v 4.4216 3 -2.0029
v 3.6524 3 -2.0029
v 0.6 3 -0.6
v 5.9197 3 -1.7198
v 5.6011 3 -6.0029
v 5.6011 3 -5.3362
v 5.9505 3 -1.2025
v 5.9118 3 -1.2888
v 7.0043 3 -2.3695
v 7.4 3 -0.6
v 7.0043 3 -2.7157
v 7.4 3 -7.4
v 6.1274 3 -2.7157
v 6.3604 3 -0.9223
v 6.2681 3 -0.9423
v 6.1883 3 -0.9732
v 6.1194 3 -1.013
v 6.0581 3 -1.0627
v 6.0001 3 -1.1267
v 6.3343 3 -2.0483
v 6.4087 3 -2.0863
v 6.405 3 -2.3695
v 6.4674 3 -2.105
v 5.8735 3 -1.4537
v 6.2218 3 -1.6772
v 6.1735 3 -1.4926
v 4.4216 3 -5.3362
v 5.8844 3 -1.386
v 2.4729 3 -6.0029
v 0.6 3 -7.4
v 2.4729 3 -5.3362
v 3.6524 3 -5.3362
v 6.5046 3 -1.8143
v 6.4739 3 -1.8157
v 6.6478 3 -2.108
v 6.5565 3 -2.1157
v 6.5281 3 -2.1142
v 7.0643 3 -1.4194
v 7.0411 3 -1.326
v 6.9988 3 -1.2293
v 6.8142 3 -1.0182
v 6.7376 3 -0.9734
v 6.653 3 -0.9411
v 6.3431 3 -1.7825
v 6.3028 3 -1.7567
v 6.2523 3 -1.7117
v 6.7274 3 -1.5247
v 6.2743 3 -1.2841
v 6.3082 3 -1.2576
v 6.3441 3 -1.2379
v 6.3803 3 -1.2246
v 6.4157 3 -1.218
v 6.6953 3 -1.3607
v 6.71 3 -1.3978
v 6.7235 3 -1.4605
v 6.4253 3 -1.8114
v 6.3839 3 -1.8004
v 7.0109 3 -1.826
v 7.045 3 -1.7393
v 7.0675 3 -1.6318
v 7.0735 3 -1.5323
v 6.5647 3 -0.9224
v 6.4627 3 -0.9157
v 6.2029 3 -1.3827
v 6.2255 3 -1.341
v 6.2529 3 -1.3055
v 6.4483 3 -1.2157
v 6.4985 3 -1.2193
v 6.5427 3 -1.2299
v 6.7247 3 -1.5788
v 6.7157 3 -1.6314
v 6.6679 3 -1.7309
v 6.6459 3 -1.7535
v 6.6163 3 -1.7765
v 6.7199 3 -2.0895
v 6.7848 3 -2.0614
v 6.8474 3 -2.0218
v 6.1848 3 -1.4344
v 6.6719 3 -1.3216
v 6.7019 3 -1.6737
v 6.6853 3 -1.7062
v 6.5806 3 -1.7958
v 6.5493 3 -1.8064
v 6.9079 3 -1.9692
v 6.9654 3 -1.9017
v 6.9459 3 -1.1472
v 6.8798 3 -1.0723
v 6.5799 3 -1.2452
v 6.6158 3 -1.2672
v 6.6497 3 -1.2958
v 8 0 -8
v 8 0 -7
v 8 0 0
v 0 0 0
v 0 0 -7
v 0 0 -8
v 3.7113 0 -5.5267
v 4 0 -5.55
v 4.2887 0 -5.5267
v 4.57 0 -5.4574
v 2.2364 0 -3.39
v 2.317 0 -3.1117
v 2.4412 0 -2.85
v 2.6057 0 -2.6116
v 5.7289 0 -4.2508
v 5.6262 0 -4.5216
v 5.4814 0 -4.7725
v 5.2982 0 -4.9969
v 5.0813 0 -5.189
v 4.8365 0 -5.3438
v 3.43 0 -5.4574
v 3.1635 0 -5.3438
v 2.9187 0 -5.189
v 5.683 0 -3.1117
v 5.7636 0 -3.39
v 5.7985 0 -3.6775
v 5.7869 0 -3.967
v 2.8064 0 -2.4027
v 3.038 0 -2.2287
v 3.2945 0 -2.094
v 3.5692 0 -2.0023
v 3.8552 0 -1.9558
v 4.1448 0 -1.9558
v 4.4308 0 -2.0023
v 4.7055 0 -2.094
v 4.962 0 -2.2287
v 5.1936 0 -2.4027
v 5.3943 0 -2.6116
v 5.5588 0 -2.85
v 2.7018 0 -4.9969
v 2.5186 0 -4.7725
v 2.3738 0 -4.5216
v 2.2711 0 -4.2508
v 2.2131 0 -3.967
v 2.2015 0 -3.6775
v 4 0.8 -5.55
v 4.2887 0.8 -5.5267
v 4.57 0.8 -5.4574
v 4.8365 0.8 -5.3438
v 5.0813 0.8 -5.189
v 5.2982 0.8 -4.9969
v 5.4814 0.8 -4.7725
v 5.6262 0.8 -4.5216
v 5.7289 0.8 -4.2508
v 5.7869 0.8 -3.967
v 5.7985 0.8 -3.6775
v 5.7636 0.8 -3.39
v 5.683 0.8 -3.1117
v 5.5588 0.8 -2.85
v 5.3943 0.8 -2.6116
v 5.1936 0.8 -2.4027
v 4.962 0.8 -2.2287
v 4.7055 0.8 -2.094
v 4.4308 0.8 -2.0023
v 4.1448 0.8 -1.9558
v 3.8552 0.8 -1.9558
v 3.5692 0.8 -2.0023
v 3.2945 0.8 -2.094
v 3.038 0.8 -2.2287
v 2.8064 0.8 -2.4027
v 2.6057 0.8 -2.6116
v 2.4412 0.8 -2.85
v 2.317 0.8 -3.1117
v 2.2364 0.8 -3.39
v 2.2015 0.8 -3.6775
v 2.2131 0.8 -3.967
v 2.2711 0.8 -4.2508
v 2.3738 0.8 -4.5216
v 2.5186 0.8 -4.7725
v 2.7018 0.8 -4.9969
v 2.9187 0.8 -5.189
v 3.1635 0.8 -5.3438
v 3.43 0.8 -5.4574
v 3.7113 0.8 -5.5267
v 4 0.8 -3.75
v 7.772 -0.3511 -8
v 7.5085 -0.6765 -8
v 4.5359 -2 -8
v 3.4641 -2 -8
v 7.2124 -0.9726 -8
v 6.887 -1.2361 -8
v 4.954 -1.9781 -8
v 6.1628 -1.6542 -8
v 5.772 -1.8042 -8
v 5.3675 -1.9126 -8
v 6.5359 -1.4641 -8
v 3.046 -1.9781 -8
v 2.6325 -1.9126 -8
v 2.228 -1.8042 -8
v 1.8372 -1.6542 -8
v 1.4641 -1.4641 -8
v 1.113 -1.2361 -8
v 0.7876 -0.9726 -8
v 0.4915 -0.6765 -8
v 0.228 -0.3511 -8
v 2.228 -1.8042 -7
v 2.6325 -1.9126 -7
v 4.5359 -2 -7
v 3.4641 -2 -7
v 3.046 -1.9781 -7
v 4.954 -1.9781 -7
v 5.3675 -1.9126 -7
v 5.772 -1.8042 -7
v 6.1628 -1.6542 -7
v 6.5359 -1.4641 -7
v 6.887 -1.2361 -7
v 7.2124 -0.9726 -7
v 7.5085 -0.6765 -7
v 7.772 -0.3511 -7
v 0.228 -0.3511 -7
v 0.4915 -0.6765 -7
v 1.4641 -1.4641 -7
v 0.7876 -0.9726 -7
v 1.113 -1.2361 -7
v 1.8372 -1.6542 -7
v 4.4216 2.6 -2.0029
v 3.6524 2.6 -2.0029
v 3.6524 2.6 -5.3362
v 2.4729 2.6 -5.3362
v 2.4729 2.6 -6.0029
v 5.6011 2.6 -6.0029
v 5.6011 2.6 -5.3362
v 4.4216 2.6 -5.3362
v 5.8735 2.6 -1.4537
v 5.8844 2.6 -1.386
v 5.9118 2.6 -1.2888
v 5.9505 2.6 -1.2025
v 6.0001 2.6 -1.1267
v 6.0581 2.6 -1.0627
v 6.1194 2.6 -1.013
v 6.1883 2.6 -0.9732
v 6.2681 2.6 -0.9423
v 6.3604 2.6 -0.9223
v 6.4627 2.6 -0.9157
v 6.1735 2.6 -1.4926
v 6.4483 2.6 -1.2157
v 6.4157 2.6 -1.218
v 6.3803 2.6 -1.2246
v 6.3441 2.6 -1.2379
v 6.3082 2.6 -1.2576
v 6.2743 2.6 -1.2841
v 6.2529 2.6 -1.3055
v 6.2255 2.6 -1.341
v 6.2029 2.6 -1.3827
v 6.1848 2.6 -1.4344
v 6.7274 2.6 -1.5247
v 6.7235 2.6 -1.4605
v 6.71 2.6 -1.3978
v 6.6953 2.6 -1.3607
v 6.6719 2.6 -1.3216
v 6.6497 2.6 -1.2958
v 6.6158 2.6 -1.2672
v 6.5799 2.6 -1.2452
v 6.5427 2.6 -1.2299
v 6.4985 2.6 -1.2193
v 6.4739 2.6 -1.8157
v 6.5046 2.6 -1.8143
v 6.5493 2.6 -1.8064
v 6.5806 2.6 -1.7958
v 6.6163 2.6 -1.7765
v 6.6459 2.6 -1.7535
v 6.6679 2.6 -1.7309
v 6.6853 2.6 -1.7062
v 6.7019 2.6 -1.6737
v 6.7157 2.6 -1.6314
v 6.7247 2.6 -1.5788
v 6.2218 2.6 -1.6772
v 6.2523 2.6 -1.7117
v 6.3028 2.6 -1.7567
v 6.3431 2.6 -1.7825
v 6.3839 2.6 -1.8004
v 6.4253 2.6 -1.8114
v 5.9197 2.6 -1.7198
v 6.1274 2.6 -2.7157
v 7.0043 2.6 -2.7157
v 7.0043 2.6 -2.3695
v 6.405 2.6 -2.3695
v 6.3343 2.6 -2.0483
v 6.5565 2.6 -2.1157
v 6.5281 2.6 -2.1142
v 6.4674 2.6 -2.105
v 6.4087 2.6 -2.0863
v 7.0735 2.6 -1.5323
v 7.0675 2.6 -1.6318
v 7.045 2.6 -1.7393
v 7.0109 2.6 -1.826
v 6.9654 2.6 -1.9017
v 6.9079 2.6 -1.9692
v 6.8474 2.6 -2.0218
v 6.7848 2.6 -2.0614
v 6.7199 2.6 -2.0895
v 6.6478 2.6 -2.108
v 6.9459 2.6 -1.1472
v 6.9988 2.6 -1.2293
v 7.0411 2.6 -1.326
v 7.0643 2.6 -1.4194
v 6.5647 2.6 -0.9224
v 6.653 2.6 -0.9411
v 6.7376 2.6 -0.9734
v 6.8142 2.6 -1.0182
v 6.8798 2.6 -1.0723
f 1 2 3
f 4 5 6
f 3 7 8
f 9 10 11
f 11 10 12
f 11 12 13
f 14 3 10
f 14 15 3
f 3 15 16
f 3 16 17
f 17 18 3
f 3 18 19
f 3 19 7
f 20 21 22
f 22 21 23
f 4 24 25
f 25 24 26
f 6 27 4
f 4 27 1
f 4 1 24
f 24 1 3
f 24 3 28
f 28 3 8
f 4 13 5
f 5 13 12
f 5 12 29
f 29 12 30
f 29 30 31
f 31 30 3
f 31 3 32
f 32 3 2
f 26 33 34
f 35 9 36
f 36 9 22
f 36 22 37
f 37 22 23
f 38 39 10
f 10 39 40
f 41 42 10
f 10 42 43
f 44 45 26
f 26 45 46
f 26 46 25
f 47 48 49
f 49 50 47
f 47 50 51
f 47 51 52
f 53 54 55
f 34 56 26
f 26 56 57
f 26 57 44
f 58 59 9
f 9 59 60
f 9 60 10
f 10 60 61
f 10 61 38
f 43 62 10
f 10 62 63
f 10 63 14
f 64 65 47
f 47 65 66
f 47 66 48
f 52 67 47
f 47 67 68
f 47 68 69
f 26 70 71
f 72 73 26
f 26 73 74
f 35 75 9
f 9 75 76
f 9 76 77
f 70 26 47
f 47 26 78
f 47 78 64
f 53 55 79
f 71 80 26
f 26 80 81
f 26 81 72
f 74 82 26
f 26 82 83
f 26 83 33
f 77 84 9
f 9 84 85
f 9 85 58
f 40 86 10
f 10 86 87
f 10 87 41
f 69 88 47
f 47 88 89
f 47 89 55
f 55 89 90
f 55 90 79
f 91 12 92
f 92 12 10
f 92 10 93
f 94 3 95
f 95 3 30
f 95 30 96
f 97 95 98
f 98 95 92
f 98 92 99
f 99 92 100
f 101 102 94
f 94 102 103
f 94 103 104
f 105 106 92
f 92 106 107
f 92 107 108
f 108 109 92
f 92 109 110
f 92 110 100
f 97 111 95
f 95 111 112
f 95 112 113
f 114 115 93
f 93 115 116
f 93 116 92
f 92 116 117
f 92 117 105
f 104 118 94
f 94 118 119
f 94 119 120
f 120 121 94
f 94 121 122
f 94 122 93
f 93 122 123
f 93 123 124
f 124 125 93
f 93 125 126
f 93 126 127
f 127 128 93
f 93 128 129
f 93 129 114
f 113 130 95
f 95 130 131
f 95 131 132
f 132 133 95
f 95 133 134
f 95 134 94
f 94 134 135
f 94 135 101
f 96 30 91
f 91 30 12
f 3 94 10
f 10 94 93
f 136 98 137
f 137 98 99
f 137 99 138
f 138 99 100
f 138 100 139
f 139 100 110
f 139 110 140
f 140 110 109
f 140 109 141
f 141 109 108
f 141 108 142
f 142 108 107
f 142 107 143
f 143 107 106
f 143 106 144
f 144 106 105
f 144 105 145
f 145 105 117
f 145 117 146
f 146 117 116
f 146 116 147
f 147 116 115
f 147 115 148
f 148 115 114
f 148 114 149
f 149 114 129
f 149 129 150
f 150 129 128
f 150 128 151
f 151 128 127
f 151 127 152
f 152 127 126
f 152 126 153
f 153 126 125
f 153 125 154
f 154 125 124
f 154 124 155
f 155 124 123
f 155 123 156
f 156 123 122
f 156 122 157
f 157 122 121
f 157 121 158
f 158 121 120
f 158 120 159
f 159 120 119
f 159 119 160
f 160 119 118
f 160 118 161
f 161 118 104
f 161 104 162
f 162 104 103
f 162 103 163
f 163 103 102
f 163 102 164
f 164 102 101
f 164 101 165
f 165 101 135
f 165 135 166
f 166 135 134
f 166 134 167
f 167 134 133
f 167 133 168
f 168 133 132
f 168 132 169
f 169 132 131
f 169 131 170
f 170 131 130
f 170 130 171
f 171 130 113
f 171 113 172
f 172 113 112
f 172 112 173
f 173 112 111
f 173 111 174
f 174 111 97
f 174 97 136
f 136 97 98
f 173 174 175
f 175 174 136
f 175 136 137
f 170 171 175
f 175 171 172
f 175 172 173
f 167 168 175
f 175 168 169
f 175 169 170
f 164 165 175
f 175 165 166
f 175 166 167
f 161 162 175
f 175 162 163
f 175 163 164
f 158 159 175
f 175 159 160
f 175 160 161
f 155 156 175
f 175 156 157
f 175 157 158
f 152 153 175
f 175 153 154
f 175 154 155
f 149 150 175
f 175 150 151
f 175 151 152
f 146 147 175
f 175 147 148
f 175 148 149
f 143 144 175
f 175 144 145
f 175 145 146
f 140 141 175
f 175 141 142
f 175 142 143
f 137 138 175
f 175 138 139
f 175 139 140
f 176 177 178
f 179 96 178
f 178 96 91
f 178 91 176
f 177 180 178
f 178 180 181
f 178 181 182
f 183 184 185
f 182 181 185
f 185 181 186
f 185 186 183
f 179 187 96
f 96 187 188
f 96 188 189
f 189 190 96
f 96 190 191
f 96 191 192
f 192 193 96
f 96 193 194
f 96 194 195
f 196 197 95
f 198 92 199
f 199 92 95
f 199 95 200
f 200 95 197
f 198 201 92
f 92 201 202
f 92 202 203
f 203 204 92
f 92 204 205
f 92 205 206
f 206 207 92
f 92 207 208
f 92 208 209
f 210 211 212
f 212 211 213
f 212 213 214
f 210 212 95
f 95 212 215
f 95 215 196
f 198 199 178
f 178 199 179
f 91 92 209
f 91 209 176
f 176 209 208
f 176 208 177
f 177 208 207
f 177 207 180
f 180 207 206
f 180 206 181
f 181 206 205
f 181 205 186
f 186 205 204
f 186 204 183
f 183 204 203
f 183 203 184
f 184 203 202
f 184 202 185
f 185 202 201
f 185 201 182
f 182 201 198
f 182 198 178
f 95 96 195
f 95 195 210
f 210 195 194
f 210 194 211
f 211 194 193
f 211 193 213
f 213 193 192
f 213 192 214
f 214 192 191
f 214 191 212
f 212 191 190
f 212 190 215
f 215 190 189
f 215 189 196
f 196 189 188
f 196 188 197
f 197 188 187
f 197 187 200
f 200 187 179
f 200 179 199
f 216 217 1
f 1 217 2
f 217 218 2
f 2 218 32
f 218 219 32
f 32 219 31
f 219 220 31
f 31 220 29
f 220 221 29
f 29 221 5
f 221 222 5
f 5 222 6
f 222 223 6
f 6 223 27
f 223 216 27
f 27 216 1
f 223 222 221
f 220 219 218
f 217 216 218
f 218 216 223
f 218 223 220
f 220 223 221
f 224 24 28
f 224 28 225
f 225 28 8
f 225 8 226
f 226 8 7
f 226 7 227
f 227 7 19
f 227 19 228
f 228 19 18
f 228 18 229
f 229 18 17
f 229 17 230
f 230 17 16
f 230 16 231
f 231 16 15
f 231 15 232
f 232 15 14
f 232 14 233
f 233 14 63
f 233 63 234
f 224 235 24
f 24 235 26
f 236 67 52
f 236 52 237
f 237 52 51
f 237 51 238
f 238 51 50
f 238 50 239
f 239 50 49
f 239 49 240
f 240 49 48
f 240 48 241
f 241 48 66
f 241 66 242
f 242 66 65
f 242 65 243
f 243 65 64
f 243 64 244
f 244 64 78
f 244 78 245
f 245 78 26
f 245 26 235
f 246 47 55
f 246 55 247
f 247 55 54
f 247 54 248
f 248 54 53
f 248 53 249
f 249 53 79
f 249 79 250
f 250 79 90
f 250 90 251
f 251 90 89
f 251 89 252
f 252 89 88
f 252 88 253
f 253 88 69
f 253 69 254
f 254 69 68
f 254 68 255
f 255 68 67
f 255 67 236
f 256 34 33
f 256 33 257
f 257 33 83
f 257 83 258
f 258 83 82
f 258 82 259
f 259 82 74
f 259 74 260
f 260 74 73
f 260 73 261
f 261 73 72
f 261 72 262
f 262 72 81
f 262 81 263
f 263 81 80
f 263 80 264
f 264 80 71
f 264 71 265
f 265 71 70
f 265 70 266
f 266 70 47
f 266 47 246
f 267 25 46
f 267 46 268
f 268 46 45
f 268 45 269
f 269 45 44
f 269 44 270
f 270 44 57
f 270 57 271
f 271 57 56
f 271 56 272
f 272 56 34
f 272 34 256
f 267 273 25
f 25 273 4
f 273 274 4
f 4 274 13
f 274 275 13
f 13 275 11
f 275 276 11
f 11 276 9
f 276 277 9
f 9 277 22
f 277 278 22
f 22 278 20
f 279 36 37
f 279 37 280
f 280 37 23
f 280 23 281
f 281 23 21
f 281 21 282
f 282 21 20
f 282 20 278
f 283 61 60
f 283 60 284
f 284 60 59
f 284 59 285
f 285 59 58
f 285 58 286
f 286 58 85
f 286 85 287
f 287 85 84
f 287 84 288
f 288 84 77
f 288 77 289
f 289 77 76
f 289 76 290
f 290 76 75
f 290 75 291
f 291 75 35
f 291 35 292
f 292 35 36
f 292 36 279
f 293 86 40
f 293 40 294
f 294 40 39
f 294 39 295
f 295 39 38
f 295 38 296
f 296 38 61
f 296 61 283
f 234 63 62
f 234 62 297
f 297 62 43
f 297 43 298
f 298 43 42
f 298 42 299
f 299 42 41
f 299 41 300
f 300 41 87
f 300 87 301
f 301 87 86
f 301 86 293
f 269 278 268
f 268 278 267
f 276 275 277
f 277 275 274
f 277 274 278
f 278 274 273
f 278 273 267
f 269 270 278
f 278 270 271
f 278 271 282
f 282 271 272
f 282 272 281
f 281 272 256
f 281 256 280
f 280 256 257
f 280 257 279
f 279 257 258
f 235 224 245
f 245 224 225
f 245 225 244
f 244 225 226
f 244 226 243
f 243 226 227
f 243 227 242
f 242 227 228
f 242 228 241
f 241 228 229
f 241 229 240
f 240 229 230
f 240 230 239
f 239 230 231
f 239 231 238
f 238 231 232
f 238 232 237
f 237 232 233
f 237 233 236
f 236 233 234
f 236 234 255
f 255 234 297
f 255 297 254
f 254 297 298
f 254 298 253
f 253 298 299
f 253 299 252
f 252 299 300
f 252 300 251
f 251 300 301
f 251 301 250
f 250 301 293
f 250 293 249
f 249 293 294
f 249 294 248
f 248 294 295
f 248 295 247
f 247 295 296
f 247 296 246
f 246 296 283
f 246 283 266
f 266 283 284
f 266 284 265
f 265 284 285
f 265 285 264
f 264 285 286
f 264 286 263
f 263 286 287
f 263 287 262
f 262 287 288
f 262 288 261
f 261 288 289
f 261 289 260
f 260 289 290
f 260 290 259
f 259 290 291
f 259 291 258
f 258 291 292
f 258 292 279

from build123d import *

# Parameters (mm, degrees)
SKETCH1_W               = 8
SKETCH1_H               = 8
BOSS_EXTRUDE1_DEPTH     = 3
CUT_EXTRUDE1_DEPTH      = 12.704699911
CUT_EXTRUDE1_DEPTH_BACK = 12.704699911
CUT_EXTRUDE2_DEPTH      = 11
SKETCH4_R               = 1.8
CUT_EXTRUDE3_DEPTH      = 0.8
SKETCH5_W               = 8
SKETCH5_H               = 1
BOSS_EXTRUDE2_DEPTH     = 2
FILLET1_R               = 4
CUT_EXTRUDE4_DEPTH      = 0.4
CUT_EXTRUDE5_DEPTH      = 0.4


with BuildPart() as part:
    # Sketch1 → Boss-Extrude1 (new body)
    with BuildSketch(Plane(origin=(0, 0, 0), x_dir=(1, 0, 0), z_dir=(0, 1, 0))):
        with Locations((4, 4)):
            Rectangle(SKETCH1_W, SKETCH1_H)
    extrude(amount=BOSS_EXTRUDE1_DEPTH)

    # Sketch2 → Cut-Extrude1 (cut, two sides: drawn at the far end of the back side and taken through both)
    with BuildSketch(Plane.XY.offset(-CUT_EXTRUDE1_DEPTH_BACK)):
        Polygon((0, 0), (0.6, 3), (0, 3), align=None)
        Polygon((8, 0), (7.4, 3), (8, 3), align=None)
    extrude(amount=CUT_EXTRUDE1_DEPTH + CUT_EXTRUDE1_DEPTH_BACK, mode=Mode.SUBTRACT)

    # Sketch3 → Cut-Extrude2 (cut)
    with BuildSketch(Plane(origin=(0, 0, 0), x_dir=(0, 0, -1), z_dir=(1, 0, 0))):
        Polygon((0, 0), (0.6, 3), (0, 3), align=None)
        Polygon((8, 3), (7.4, 3), (8, 0), align=None)
    extrude(amount=CUT_EXTRUDE2_DEPTH, mode=Mode.SUBTRACT)

    # Sketch4 → Cut-Extrude3 (cut)
    with BuildSketch(Plane.XZ):
        with Locations(Location((4, -3.75, 0), (0, 0, 270))):
            Circle(SKETCH4_R)
    extrude(amount=-CUT_EXTRUDE3_DEPTH, mode=Mode.SUBTRACT)

    # Sketch5 → Boss-Extrude2 (add)
    with BuildSketch(Plane.XZ):
        with Locations((4, -7.5)):
            Rectangle(SKETCH5_W, SKETCH5_H)
    extrude(amount=BOSS_EXTRUDE2_DEPTH)

    # Fillet1
    # the kernel refuses this fillet: 4 mm, written as the material it takes off along each edge
    with BuildSketch(Plane(origin=(8, -2, -16.660254038), x_dir=(0, 1, 0), z_dir=(0, 0, 1)), Plane(origin=(0, -2, 1.660254038), x_dir=(0, 1, 0), z_dir=(0, 0, -1))) as fillet1_piece_1:
        with BuildLine():
            CenterArc((4, 3.464101615), FILLET1_R, 180, 60)
            Line((0, 3.464101615), (-0.08, 3.464101615))
            Line((-0.08, 3.464101615), (-0.08, 0))
            Line((-0.08, 0), (0, -0.08))
            ThreePointArc((0, -0.08), (1, -0.08), (1.96, -0.069282032))
            Line((1.96, -0.069282032), (2, 0))
        make_face()
    extrude(amount=18.320508076, mode=Mode.SUBTRACT)

    # Sketch6 → Cut-Extrude4 (cut)
    with BuildSketch(Plane(origin=(0, 3, 0), x_dir=(1, 0, 0), z_dir=(0, 1, 0))):
        Polygon((3.652362984, 2.002856352), (3.652362984, 5.336189685), (2.472875805, 5.336189685), (2.472875805, 6.002856352), (5.601080933, 6.002856352), (5.601080933, 5.336189685), (4.421593754, 5.336189685), (4.421593754, 2.002856352), align=None)
    extrude(amount=-CUT_EXTRUDE4_DEPTH, mode=Mode.SUBTRACT)

    # Sketch7 → Cut-Extrude5 (cut)
    with BuildSketch(Plane(origin=(0, 3, 0), x_dir=(1, 0, 0), z_dir=(0, 1, 0))):
        with BuildLine():
            Line((5.873519392, 1.453659702), (6.173519392, 1.492602009))
            add(Edge.make_bspline(
                [(6.173519392, 1.492602009), (6.1768382, 1.472256976), (6.18322911, 1.433079261), (6.203068429, 1.378384162), (6.230697403, 1.330199963), (6.266205672, 1.289626965), (6.30661854, 1.256629271), (6.351264588, 1.233104776), (6.398791495, 1.218293755), (6.431707248, 1.216554551), (6.448279008, 1.215678932)],
                knots=[0, 0, 0, 0, 1.154848647, 2.223851388, 3.245409892, 4.254330626, 5.232966172, 6.156270698, 7.071756339, 8, 8, 8, 8], degree=3))
            add(Edge.make_bspline(
                [(6.448279008, 1.215678932), (6.457906388, 1.215848075), (6.476752132, 1.216179174), (6.504524052, 1.219937575), (6.531053869, 1.226043662), (6.55659259, 1.234330756), (6.580874213, 1.245230043), (6.603920328, 1.258567919), (6.625817059, 1.274363121), (6.646675237, 1.292223374), (6.665948362, 1.312615024), (6.682055884, 1.336087325), (6.696325112, 1.361440746), (6.707949377, 1.389364059), (6.716328852, 1.41995512), (6.722995329, 1.45269023), (6.726393576, 1.487964606), (6.7270346, 1.51218758), (6.727365546, 1.524693355)],
                knots=[0, 0, 0, 0, 0.981268084, 1.920847364, 2.851509818, 3.754644372, 4.654445699, 5.560569672, 6.465366234, 7.403985617, 8.358004942, 9.316972086, 10.299158387, 11.321223707, 12.392031981, 13.529051644, 14.724304971, 16, 16, 16, 16], degree=3))
            add(Edge.make_bspline(
                [(6.727365546, 1.524693355), (6.727178419, 1.536481523), (6.726816764, 1.559264099), (6.723461454, 1.592272205), (6.718311073, 1.623118586), (6.710117629, 1.651577708), (6.700760071, 1.678178631), (6.688143723, 1.701978526), (6.674300374, 1.724011312), (6.657427434, 1.743088207), (6.639042824, 1.759943867), (6.619463278, 1.774961982), (6.598469004, 1.787493154), (6.576269045, 1.79824857), (6.552478567, 1.806082762), (6.527290541, 1.811294815), (6.501043648, 1.815207497), (6.483029864, 1.815520133), (6.473879969, 1.815678932)],
                knots=[0, 0, 0, 0, 1.29221626, 2.497420946, 3.635005972, 4.715822244, 5.741640361, 6.720139245, 7.663294346, 8.588224307, 9.502291809, 10.395891443, 11.288713187, 12.178904539, 13.095818132, 14.026458458, 14.997562253, 16, 16, 16, 16], degree=3))
            add(Edge.make_bspline(
                [(6.473879969, 1.815678932), (6.462311673, 1.815264192), (6.439232742, 1.814436778), (6.405164091, 1.807710713), (6.372003678, 1.796760631), (6.339785969, 1.781517356), (6.308596201, 1.761859078), (6.278569411, 1.737720606), (6.249190173, 1.70951724), (6.23114374, 1.688207441), (6.2218367, 1.677217394)],
                knots=[0, 0, 0, 0, 0.931687088, 1.85873035, 2.786835662, 3.740075265, 4.723687035, 5.750832598, 6.840042753, 8, 8, 8, 8], degree=3))
            Line((6.2218367, 1.677217394), (5.919673238, 1.719765471))
            Line((5.919673238, 1.719765471), (6.127365546, 2.715678932))
            Line((6.127365546, 2.715678932), (7.004288623, 2.715678932))
            Line((7.004288623, 2.715678932), (7.004288623, 2.369525086))
            Line((7.004288623, 2.369525086), (6.405009777, 2.369525086))
            Line((6.405009777, 2.369525086), (6.3343367, 2.048251048))
            add(Edge.make_bspline(
                [(6.3343367, 2.048251048), (6.352346227, 2.058641979), (6.3874181, 2.078877348), (6.443410579, 2.099707804), (6.499690691, 2.113077126), (6.537629531, 2.114816152), (6.556452085, 2.115678932)],
                knots=[0, 0, 0, 0, 1.060051984, 2.064352337, 3.039669322, 4, 4, 4, 4], degree=3))
            add(Edge.make_bspline(
                [(6.556452085, 2.115678932), (6.574146885, 2.115202759), (6.60910097, 2.114262131), (6.660364054, 2.106544582), (6.709535097, 2.093825268), (6.756780138, 2.076125011), (6.801761249, 2.052924592), (6.844866196, 2.024883357), (6.885472675, 1.991514713), (6.924016987, 1.953782044), (6.959166694, 1.912035385), (6.989521263, 1.866512768), (7.015738821, 1.818347997), (7.037083021, 1.767008911), (7.053155816, 1.712424088), (7.065192785, 1.655063547), (7.07193581, 1.594565079), (7.072984339, 1.553314949), (7.073519392, 1.532265471)],
                knots=[0, 0, 0, 0, 0.974409932, 1.924837087, 2.848242317, 3.768103797, 4.697919751, 5.630842317, 6.595644344, 7.588240789, 8.59876155, 9.595918743, 10.597287627, 11.615415169, 12.652315553, 13.727511434, 14.840374562, 16, 16, 16, 16], degree=3))
            add(Edge.make_bspline(
                [(7.073519392, 1.532265471), (7.073036469, 1.514585649), (7.072077961, 1.479494734), (7.066471429, 1.42756738), (7.056005109, 1.377169317), (7.042672536, 1.328016631), (7.024246745, 1.280521142), (7.002381003, 1.234373213), (6.976242653, 1.189655711), (6.956076521, 1.161441782), (6.945875162, 1.147169317)],
                knots=[0, 0, 0, 0, 1.027524957, 2.039431707, 3.02972907, 4.015954419, 4.995255842, 5.985553205, 6.980960039, 8, 8, 8, 8], degree=3))
            add(Edge.make_bspline(
                [(6.945875162, 1.147169317), (6.931003624, 1.128791302), (6.901734709, 1.092621232), (6.851630217, 1.045066578), (6.797135444, 1.00512898), (6.738397987, 0.97233011), (6.675480422, 0.946591981), (6.608098871, 0.928697649), (6.536747385, 0.917626673), (6.487743367, 0.916337636), (6.462702085, 0.915678932)],
                knots=[0, 0, 0, 0, 1.018121711, 2.003781959, 2.967346956, 3.92281574, 4.896313303, 5.889026666, 6.921282725, 8, 8, 8, 8], degree=3))
            add(Edge.make_bspline(
                [(6.462702085, 0.915678932), (6.442489279, 0.916044029), (6.403022672, 0.9167569), (6.345224712, 0.92380666), (6.290451314, 0.935259909), (6.238356922, 0.95115359), (6.18925085, 0.971795666), (6.142751555, 0.99671717), (6.099246456, 1.026470486), (6.058935891, 1.060830838), (6.021919655, 1.09880899), (5.988902802, 1.140363971), (5.959526451, 1.184800784), (5.934351052, 1.232568443), (5.912895663, 1.28333195), (5.895811978, 1.337351468), (5.881746134, 1.394266746), (5.876291993, 1.433642912), (5.873519392, 1.453659702)],
                knots=[0, 0, 0, 0, 1.098912142, 2.145685936, 3.161086862, 4.139124218, 5.10307886, 6.053641493, 7.003731987, 7.963777669, 8.929946266, 9.883471279, 10.846206077, 11.822909928, 12.81603559, 13.839338588, 14.901632394, 16, 16, 16, 16], degree=3))
        make_face()
    extrude(amount=-CUT_EXTRUDE5_DEPTH, mode=Mode.SUBTRACT)


solid = part.part
